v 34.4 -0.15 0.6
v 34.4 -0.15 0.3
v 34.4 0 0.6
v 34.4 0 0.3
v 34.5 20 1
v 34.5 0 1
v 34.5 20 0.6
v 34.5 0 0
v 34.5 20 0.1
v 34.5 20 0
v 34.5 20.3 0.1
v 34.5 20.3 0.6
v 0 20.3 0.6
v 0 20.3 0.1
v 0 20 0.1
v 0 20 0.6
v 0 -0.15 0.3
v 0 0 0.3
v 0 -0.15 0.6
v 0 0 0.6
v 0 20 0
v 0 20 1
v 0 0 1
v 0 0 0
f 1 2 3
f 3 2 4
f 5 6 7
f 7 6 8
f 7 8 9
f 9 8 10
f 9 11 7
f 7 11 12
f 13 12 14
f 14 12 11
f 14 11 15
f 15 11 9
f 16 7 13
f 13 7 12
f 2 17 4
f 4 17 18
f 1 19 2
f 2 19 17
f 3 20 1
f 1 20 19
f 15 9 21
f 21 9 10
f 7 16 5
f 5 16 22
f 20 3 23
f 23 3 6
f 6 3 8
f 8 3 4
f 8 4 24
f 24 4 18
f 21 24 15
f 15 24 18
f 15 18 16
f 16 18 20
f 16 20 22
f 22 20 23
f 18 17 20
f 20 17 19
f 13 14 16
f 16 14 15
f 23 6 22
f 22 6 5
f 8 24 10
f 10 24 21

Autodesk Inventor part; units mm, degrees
ref_plane "YZ Plane" through (0, 0, 0) normal (1, 0, 0) x (0, 1, 0)
ref_plane "XZ Plane" through (0, 0, 0) normal (0, 1, 0) x (-1, 0, 0)
ref_plane "XY Plane" through (0, 0, 0) normal (0, 0, 1) x (1, 0, 0)
sketch "Sketch1" plane through (0, 0, 0) normal (0, 0, 1) x (1, 0, 0)
  line L0 (0, 0) -> (34.5, 0)
  line L1 (34.5, 0) -> (34.5, 20)
  line L2 (34.5, 20) -> (0, 20)
  line L3 (0, 20) -> (0, 0)
  dimension "d0" = 34.5
  dimension "d1" = 20
extrude "Extrusion1" add sketch "Sketch1" along normal blind 1
sketch "Sketch2" plane through (0, 0, 0) normal (-1, 0, 0) x (0, 0, 1)
  line L0 (1, 20) -> (1, 0) projected
  line L1 (0, 20) -> (1, 20) projected
  line L2 (0.6, 20) -> (0.1, 20)
  line L3 (0.1, 20) -> (0.1, 20.3)
  line L4 (0.1, 20.3) -> (0.6, 20.3)
  line L5 (0.6, 20.3) -> (0.6, 20)
  line L6 (0, 0) -> (1, 0) projected
  line L7 (0.6, 0) -> (0.3, 0)
  line L8 (0.3, 0) -> (0.3, -0.15)
  line L9 (0.3, -0.15) -> (0.6, -0.15)
  line L10 (0.6, -0.15) -> (0.6, 0)
  dimension "d4" = 0.5
  dimension "d5" = 0.3
  dimension "d6" = 0.4
  dimension "d7" = 0.15
extrude "Extrusion2" add sketch "Sketch2" against normal blind 34.5
sketch "Sketch3" plane through (0, -0.15, 0.3) normal (0, -1, 0) x (1, 0, 0)
  line L0 (0, 0.3) -> (34.5, 0.3) projected
  line L1 (34.5, 0) -> (0, 0) projected
  line L2 (34.5, 0.3) -> (34.4, 0.3)
  line L3 (34.4, 0.3) -> (34.4, 0)
  line L4 (34.4, 0) -> (34.5, 0)
  line L5 (34.5, 0) -> (34.5, 0.3)
  point P0 (0, -0.3)
  dimension "d10" = 0.1
extrude "Extrusion3" cut sketch "Sketch3" against normal blind 0.15
properties part number "Bovenkant"
